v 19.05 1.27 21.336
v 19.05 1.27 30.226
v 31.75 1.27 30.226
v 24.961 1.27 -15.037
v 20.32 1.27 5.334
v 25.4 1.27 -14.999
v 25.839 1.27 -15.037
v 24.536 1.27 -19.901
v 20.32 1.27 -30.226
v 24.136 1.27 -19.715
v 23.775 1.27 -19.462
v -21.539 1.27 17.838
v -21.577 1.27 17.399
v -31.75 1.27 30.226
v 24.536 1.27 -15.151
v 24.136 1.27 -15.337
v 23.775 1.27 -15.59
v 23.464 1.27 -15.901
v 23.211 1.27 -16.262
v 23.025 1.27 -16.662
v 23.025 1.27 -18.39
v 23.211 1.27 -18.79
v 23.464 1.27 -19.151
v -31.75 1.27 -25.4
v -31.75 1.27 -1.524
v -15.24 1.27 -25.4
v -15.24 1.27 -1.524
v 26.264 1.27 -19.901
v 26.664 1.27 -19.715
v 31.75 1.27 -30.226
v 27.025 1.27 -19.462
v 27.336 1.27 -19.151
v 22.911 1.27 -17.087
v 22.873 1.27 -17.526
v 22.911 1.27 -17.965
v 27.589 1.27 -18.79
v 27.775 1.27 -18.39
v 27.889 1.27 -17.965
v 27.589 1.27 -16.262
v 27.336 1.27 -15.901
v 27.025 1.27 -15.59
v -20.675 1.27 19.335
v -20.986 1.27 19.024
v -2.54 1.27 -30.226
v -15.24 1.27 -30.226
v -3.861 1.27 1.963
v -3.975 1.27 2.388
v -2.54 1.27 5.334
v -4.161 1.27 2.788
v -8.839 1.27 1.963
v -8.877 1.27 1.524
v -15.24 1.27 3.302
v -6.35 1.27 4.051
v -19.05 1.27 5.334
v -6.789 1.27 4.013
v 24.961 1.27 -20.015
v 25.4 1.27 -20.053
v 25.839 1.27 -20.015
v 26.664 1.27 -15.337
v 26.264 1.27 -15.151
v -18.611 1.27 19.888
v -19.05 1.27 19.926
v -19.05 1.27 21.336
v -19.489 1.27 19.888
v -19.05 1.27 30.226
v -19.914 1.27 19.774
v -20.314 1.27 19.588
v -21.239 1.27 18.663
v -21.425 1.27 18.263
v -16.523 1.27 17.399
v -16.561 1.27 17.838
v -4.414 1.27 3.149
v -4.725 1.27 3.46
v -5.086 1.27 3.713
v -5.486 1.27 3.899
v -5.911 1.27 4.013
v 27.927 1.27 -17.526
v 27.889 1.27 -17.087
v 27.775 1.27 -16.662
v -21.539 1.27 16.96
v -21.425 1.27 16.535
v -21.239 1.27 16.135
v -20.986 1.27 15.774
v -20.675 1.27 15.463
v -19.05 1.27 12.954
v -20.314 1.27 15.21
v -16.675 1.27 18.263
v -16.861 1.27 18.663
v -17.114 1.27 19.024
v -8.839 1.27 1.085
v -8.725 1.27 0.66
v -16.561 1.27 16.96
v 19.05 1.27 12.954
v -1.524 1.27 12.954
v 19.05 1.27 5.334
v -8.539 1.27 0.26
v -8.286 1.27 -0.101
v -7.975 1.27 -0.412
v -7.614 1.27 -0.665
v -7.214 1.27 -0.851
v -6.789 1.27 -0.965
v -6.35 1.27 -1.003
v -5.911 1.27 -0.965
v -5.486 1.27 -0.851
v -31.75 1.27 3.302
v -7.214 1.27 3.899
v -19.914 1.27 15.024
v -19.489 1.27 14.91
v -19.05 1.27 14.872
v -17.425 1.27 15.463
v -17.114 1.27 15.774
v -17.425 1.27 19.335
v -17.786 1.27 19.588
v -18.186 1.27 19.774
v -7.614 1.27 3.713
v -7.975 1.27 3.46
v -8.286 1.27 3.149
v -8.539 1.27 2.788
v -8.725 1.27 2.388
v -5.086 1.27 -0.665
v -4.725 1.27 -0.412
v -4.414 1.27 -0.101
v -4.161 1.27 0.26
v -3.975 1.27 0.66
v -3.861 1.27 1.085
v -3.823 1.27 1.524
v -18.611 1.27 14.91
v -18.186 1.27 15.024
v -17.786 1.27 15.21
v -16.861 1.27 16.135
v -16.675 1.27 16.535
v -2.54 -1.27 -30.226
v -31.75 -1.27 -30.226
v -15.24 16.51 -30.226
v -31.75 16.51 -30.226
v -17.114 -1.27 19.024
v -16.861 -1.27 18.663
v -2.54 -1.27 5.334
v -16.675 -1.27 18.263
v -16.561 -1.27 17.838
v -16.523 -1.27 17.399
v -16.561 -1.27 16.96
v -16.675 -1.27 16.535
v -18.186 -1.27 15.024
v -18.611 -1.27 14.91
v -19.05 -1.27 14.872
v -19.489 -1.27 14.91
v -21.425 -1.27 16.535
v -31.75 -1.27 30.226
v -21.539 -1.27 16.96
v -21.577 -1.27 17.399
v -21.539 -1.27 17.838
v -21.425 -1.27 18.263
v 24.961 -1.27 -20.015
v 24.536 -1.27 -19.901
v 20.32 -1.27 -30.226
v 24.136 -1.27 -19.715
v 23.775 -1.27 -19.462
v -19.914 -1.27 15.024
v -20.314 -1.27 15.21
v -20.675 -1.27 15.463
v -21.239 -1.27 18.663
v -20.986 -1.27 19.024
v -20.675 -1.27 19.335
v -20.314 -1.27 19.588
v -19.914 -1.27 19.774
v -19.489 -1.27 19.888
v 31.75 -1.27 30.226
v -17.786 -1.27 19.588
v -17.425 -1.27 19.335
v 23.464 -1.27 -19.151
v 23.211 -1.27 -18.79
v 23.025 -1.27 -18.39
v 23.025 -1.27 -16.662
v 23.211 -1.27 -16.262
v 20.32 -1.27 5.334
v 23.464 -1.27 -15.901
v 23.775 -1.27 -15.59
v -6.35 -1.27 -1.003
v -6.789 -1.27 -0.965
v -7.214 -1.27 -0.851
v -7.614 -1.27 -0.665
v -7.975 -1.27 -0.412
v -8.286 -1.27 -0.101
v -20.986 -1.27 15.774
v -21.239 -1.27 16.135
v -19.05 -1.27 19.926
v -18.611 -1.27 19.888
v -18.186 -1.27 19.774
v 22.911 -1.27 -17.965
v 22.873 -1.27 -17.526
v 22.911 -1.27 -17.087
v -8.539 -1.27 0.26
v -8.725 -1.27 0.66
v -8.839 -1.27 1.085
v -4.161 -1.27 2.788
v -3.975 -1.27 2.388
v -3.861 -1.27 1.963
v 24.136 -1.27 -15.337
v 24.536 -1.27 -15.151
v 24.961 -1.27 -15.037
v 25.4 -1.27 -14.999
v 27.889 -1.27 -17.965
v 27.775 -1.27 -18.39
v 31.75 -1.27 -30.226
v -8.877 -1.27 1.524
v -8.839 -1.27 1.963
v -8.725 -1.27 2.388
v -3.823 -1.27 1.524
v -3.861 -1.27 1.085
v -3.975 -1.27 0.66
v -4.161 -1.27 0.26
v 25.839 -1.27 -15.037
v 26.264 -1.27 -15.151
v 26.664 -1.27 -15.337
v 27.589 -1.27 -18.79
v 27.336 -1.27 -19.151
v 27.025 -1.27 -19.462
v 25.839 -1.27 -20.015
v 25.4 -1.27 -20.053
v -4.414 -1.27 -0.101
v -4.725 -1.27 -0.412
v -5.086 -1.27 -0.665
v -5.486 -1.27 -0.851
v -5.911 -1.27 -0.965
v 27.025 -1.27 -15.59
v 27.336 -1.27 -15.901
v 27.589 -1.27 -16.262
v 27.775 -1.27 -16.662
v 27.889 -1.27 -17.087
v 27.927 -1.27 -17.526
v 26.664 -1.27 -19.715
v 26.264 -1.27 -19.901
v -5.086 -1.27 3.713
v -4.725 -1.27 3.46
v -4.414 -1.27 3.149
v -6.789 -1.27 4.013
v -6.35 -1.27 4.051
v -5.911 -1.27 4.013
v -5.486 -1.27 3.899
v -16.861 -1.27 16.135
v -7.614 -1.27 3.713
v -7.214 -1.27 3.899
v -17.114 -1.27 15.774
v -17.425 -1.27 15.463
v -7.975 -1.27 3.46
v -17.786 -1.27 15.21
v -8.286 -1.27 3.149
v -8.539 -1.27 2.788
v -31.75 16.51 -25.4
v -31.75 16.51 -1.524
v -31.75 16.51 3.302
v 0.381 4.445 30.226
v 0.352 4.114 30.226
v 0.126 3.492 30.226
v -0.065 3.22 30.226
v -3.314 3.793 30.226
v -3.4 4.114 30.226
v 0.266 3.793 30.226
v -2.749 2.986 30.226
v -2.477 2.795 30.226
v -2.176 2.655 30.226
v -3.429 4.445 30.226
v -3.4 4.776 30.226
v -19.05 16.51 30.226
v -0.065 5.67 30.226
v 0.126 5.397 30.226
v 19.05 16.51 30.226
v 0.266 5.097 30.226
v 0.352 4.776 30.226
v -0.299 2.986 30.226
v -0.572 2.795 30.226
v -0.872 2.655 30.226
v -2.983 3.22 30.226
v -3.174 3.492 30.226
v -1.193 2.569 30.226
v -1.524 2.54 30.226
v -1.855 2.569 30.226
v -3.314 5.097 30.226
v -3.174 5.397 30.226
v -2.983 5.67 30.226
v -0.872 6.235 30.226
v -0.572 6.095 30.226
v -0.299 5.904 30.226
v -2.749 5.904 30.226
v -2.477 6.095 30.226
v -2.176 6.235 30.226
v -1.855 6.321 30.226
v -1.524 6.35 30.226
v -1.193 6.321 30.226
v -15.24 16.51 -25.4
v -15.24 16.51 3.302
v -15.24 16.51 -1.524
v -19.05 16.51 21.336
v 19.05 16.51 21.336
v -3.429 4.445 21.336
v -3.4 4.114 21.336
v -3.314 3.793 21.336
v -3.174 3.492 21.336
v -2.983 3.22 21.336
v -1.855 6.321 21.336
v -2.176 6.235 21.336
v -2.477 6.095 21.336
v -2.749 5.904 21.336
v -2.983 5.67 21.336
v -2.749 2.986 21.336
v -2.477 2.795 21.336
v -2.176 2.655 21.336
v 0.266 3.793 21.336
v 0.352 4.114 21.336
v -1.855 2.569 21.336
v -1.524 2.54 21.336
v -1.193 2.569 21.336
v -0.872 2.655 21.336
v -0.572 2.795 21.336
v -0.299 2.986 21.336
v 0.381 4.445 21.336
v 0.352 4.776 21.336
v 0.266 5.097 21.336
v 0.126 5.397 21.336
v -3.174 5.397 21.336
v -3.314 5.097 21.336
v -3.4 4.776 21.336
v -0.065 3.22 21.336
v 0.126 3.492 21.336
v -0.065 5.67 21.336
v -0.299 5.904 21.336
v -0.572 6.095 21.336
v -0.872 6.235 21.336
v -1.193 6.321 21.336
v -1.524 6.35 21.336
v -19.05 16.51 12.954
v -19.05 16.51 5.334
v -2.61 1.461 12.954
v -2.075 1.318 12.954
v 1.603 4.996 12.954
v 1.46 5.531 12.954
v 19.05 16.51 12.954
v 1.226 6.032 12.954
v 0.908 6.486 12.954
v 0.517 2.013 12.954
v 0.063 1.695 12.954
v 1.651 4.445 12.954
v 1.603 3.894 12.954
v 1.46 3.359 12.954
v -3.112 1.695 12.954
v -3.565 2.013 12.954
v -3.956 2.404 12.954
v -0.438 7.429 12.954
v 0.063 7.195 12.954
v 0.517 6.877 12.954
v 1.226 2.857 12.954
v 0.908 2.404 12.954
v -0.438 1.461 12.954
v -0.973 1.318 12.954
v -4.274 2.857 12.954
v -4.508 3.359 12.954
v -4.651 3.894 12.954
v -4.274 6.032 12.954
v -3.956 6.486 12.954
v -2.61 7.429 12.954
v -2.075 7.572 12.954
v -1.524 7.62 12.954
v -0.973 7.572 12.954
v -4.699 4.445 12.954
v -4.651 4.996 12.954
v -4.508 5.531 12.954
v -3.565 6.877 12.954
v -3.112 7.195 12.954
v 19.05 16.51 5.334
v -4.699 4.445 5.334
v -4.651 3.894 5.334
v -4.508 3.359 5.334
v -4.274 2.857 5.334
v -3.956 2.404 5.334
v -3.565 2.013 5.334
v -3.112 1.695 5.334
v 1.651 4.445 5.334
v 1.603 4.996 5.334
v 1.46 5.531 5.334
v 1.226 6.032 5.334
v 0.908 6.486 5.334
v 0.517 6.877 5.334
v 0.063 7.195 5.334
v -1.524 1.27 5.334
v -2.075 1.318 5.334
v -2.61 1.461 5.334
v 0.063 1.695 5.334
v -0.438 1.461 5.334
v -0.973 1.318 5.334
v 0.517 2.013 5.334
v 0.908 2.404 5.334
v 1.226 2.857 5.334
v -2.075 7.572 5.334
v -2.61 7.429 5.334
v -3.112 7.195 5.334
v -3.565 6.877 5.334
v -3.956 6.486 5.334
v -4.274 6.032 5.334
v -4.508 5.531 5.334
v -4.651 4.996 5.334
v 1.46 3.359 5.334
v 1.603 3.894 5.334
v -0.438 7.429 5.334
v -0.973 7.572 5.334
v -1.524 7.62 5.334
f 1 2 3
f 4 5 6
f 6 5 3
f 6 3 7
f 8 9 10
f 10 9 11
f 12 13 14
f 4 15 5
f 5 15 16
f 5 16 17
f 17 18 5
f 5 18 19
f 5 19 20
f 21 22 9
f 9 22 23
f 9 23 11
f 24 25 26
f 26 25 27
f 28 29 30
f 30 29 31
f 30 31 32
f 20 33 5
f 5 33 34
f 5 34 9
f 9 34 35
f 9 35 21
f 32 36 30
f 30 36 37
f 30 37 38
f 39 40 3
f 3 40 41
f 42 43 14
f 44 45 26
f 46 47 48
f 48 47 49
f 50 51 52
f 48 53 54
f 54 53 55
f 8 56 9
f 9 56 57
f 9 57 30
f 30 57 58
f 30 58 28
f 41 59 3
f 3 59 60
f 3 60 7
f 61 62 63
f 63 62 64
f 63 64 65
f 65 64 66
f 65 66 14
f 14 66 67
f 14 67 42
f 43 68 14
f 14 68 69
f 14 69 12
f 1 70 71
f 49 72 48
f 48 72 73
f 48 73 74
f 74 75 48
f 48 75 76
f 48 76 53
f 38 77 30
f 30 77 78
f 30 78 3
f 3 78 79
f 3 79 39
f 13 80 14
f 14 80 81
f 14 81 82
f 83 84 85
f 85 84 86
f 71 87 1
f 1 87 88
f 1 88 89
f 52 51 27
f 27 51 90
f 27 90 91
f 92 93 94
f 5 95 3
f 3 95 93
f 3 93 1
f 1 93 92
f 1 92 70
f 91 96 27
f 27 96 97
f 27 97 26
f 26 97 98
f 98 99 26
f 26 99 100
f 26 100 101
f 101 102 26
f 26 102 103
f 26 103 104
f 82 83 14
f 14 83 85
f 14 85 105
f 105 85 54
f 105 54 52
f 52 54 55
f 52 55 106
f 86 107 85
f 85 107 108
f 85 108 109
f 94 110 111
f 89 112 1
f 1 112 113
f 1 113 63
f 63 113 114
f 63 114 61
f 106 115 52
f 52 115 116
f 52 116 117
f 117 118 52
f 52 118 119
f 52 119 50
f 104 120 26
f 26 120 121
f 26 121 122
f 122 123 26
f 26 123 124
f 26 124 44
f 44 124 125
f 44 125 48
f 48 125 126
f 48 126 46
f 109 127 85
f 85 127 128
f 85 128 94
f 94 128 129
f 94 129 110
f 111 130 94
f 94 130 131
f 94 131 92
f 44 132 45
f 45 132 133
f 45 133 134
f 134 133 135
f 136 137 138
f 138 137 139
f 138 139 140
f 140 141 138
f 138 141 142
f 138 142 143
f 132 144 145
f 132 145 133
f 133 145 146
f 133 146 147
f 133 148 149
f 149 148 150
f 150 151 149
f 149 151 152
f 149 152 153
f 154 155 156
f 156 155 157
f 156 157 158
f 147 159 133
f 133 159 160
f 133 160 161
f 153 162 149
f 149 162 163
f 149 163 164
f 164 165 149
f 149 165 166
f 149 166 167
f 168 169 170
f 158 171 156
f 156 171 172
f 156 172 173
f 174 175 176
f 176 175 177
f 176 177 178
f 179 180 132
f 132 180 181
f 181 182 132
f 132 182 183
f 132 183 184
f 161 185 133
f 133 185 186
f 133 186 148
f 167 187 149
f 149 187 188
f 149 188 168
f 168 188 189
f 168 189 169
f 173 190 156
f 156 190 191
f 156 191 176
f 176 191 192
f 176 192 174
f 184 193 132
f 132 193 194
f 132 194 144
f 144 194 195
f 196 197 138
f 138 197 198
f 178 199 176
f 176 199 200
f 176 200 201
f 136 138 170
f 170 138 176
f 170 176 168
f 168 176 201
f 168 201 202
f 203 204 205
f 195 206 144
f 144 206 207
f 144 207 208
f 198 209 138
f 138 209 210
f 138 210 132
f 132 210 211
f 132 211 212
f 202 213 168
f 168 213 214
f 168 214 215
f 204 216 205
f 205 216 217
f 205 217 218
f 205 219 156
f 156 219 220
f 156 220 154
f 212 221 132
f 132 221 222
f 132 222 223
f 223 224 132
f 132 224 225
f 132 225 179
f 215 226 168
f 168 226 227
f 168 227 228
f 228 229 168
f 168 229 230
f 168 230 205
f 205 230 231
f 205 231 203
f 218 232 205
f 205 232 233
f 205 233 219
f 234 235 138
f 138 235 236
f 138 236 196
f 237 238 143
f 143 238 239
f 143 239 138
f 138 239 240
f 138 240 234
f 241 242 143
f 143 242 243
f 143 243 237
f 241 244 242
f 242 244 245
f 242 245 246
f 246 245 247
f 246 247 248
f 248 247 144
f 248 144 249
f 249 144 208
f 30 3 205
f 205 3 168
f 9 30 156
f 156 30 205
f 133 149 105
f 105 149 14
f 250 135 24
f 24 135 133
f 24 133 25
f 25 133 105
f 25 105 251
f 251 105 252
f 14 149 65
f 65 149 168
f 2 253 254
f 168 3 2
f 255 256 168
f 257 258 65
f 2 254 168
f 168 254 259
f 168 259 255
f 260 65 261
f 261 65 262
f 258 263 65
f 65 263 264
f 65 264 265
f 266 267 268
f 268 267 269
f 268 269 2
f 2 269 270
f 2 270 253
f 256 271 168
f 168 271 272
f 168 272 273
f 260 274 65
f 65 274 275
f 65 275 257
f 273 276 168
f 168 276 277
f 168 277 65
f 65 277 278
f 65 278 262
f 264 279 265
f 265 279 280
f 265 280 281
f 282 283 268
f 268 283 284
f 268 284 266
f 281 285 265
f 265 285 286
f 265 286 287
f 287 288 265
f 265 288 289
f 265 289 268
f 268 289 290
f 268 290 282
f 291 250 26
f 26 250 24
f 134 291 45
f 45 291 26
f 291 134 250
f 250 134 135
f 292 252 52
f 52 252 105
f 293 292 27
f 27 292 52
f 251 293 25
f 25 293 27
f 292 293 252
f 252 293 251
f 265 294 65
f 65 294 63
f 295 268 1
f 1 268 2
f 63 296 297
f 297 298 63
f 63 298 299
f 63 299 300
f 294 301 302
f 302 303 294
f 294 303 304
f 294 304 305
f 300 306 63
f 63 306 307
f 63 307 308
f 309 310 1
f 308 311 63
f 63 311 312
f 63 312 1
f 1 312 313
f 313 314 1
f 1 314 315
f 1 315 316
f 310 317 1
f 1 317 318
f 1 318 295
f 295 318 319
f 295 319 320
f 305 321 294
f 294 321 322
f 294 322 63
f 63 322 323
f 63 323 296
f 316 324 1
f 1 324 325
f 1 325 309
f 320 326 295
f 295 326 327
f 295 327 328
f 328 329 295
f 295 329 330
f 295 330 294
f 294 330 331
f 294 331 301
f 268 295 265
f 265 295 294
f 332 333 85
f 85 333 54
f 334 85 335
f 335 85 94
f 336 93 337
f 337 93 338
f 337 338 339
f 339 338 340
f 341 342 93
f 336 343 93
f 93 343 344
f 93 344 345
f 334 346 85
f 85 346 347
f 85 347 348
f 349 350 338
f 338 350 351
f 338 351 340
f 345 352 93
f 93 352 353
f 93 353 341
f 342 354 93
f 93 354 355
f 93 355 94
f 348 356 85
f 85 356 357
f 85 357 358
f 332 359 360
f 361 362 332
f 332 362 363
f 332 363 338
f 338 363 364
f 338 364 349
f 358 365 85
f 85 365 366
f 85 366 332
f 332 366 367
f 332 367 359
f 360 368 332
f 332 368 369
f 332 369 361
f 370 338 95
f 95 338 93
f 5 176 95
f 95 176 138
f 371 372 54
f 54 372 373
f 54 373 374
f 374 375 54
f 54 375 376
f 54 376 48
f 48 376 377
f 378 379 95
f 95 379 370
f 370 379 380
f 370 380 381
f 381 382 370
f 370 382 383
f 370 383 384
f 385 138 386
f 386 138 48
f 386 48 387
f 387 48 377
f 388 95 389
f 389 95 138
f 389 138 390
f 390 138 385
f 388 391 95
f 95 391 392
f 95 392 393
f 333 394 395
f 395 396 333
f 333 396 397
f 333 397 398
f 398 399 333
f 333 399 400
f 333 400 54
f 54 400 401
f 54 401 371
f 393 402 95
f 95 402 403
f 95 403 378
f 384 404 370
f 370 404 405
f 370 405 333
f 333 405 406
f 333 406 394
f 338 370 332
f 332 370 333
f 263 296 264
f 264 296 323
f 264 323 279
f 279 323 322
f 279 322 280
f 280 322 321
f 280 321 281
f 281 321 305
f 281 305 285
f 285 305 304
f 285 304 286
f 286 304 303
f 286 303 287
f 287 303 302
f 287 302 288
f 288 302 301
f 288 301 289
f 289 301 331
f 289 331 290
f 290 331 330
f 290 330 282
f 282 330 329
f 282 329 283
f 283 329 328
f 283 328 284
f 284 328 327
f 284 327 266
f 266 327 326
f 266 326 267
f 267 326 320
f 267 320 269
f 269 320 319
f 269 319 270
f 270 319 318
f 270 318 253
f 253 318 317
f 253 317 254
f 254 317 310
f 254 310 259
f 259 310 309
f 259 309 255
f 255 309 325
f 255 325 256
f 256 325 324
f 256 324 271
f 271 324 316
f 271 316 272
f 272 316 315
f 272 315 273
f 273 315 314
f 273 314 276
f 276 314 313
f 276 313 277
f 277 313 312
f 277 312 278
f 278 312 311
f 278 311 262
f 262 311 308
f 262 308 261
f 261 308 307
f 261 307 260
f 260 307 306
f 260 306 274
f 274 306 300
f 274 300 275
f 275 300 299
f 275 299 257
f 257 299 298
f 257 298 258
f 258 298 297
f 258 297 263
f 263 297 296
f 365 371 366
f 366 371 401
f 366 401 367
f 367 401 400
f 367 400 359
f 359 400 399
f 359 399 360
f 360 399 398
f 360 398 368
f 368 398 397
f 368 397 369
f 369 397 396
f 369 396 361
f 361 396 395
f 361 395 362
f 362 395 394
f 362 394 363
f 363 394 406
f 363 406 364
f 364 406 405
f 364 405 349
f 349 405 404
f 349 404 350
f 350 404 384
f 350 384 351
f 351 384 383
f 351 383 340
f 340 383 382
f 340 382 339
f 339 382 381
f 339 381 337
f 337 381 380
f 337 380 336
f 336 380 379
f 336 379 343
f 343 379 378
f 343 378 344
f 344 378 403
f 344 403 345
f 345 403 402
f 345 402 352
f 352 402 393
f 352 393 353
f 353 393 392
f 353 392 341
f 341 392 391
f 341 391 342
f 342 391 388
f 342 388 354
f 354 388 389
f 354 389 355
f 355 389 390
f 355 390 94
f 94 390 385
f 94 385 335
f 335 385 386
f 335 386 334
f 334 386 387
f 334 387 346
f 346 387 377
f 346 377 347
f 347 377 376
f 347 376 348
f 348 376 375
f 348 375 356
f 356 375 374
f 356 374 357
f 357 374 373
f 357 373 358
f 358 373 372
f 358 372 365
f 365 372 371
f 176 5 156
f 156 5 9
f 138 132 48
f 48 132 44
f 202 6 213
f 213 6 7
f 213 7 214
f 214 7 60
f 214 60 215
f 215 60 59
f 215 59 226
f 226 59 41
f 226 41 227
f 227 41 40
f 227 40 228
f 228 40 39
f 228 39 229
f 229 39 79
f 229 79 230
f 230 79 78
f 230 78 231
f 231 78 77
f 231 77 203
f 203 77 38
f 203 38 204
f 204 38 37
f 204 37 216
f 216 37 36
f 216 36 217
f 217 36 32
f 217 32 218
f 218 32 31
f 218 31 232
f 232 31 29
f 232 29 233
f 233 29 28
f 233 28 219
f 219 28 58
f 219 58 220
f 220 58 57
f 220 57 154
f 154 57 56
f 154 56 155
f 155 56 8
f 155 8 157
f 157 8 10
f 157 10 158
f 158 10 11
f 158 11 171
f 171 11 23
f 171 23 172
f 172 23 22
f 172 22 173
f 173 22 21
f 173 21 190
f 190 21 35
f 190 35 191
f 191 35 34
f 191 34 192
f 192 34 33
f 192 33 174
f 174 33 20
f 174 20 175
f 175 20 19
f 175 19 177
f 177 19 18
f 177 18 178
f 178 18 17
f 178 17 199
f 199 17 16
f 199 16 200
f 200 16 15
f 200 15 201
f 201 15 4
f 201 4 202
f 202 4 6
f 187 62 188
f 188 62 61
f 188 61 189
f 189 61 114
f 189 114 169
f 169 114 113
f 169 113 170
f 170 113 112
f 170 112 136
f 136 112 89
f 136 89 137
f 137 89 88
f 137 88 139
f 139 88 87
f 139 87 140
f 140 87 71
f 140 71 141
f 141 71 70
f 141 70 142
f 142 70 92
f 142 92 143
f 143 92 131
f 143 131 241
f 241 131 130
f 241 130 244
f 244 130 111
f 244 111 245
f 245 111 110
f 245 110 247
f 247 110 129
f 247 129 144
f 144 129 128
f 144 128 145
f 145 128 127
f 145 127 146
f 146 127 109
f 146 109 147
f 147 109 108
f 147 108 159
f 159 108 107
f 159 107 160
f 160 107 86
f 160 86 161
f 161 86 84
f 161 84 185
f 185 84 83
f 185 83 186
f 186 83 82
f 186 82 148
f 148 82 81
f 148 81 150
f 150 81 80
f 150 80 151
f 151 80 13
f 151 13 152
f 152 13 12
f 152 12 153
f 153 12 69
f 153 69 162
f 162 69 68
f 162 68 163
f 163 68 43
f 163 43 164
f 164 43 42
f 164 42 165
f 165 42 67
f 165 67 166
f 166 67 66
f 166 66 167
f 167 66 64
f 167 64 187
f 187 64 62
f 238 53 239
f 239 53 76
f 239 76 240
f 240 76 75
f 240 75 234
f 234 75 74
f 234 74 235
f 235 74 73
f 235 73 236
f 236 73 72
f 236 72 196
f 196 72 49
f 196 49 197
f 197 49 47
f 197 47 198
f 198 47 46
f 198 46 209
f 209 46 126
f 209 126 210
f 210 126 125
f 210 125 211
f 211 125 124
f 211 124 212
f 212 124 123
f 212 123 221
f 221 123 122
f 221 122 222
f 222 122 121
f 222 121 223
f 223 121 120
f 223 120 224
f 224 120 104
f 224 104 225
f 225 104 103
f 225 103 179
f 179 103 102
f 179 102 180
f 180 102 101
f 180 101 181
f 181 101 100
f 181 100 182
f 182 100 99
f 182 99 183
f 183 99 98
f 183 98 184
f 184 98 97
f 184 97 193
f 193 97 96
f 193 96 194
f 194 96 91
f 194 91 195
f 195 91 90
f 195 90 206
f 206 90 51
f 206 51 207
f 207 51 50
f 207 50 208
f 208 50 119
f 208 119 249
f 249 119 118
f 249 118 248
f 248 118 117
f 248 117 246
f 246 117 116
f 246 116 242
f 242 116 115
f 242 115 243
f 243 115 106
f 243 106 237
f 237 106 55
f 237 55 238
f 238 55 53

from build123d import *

# Parameters (mm, degrees)
SKETCH1_W                  = 63.5
SKETCH1_H                  = 60.452
BOSS_EXTRUDE1_DEPTH        = 1.27
SKETCH2_W                  = 16.51
SKETCH2_H                  = 4.826
SKETCH2_W_2                = 38.1
SKETCH2_H_2                = 8.89
SKETCH2_H_3                = 7.62
BOSS_EXTRUDE2_DEPTH        = 15.24
SKETCH3_R                  = 1.905
CUT_EXTRUDE1_DEPTH         = 25.892
SKETCH4_R                  = 3.175
CUT_EXTRUDE2_DEPTH         = 7.62
SKETCH5_W                  = 22.86
SKETCH5_H                  = 24.252018656
SKETCH5_H_2                = 1.10530733
SKETCH5_H_3                = 10.202674014
CUT_EXTRUDE3_DEPTH         = 18.78
F_8_0_199_DIAMETER_HOLE1_D = 5.0546


with BuildPart() as part:
    # Sketch1 → Boss-Extrude1 (new body, symmetric)
    with BuildSketch(Plane(origin=(0, 0, 0), x_dir=(1, 0, 0), z_dir=(0, 1, 0))):
        Rectangle(SKETCH1_W, SKETCH1_H)
    extrude(amount=BOSS_EXTRUDE1_DEPTH, both=True)

    # Sketch2 → Boss-Extrude2 (add)
    with BuildSketch(Plane(origin=(0, 1.27, 0), x_dir=(1, 0, 0), z_dir=(0, 1, 0))):
        with Locations((-23.495, 27.813)):
            Rectangle(SKETCH2_W, SKETCH2_H)
        with Locations((-23.495, -0.889)):
            Rectangle(SKETCH2_W, SKETCH2_H)
        with Locations((0, -25.781)):
            Rectangle(SKETCH2_W_2, SKETCH2_H_2)
        with Locations((0, -9.144)):
            Rectangle(SKETCH2_W_2, SKETCH2_H_3)
    extrude(amount=BOSS_EXTRUDE2_DEPTH)

    # Sketch3 → Cut-Extrude1 (cut, through all)
    with BuildSketch(Plane(origin=(0, 0, 5.334), x_dir=(-1, 0, 0), z_dir=(0, 0, -1))):
        with Locations((1.524, 4.445)):
            Circle(SKETCH3_R)
    extrude(amount=-CUT_EXTRUDE1_DEPTH, mode=Mode.SUBTRACT)

    # Sketch4 → Cut-Extrude2 (cut)
    with BuildSketch(Plane(origin=(0, 0, 5.334), x_dir=(-1, 0, 0), z_dir=(0, 0, -1))):
        with Locations((1.524, 4.445)):
            Circle(SKETCH4_R)
    extrude(amount=-CUT_EXTRUDE2_DEPTH, mode=Mode.SUBTRACT)

    # Sketch5 → Cut-Extrude3 (cut, through all)
    with BuildSketch(Plane.XZ.offset(1.27)):
        with Locations((8.89, -16.994683342)):
            Rectangle(SKETCH5_W, SKETCH5_H)
        with Locations((8.89, -29.673346335)):
            Rectangle(SKETCH5_W, SKETCH5_H_2)
        with Locations((8.89, 0.232662993)):
            Rectangle(SKETCH5_W, SKETCH5_H_3)
    extrude(amount=-CUT_EXTRUDE3_DEPTH, mode=Mode.SUBTRACT)

    # #8 (0.199) Diameter Hole1 (through all)
    with Locations(Plane(origin=(-6.35, 1.27, 1.524), x_dir=(0, 0, 1), z_dir=(0, 1, 0))):
        with Locations((0, 0), (15.875, -12.7), (-19.05, 31.75)):
            Hole(F_8_0_199_DIAMETER_HOLE1_D / 2)


solid = part.part
